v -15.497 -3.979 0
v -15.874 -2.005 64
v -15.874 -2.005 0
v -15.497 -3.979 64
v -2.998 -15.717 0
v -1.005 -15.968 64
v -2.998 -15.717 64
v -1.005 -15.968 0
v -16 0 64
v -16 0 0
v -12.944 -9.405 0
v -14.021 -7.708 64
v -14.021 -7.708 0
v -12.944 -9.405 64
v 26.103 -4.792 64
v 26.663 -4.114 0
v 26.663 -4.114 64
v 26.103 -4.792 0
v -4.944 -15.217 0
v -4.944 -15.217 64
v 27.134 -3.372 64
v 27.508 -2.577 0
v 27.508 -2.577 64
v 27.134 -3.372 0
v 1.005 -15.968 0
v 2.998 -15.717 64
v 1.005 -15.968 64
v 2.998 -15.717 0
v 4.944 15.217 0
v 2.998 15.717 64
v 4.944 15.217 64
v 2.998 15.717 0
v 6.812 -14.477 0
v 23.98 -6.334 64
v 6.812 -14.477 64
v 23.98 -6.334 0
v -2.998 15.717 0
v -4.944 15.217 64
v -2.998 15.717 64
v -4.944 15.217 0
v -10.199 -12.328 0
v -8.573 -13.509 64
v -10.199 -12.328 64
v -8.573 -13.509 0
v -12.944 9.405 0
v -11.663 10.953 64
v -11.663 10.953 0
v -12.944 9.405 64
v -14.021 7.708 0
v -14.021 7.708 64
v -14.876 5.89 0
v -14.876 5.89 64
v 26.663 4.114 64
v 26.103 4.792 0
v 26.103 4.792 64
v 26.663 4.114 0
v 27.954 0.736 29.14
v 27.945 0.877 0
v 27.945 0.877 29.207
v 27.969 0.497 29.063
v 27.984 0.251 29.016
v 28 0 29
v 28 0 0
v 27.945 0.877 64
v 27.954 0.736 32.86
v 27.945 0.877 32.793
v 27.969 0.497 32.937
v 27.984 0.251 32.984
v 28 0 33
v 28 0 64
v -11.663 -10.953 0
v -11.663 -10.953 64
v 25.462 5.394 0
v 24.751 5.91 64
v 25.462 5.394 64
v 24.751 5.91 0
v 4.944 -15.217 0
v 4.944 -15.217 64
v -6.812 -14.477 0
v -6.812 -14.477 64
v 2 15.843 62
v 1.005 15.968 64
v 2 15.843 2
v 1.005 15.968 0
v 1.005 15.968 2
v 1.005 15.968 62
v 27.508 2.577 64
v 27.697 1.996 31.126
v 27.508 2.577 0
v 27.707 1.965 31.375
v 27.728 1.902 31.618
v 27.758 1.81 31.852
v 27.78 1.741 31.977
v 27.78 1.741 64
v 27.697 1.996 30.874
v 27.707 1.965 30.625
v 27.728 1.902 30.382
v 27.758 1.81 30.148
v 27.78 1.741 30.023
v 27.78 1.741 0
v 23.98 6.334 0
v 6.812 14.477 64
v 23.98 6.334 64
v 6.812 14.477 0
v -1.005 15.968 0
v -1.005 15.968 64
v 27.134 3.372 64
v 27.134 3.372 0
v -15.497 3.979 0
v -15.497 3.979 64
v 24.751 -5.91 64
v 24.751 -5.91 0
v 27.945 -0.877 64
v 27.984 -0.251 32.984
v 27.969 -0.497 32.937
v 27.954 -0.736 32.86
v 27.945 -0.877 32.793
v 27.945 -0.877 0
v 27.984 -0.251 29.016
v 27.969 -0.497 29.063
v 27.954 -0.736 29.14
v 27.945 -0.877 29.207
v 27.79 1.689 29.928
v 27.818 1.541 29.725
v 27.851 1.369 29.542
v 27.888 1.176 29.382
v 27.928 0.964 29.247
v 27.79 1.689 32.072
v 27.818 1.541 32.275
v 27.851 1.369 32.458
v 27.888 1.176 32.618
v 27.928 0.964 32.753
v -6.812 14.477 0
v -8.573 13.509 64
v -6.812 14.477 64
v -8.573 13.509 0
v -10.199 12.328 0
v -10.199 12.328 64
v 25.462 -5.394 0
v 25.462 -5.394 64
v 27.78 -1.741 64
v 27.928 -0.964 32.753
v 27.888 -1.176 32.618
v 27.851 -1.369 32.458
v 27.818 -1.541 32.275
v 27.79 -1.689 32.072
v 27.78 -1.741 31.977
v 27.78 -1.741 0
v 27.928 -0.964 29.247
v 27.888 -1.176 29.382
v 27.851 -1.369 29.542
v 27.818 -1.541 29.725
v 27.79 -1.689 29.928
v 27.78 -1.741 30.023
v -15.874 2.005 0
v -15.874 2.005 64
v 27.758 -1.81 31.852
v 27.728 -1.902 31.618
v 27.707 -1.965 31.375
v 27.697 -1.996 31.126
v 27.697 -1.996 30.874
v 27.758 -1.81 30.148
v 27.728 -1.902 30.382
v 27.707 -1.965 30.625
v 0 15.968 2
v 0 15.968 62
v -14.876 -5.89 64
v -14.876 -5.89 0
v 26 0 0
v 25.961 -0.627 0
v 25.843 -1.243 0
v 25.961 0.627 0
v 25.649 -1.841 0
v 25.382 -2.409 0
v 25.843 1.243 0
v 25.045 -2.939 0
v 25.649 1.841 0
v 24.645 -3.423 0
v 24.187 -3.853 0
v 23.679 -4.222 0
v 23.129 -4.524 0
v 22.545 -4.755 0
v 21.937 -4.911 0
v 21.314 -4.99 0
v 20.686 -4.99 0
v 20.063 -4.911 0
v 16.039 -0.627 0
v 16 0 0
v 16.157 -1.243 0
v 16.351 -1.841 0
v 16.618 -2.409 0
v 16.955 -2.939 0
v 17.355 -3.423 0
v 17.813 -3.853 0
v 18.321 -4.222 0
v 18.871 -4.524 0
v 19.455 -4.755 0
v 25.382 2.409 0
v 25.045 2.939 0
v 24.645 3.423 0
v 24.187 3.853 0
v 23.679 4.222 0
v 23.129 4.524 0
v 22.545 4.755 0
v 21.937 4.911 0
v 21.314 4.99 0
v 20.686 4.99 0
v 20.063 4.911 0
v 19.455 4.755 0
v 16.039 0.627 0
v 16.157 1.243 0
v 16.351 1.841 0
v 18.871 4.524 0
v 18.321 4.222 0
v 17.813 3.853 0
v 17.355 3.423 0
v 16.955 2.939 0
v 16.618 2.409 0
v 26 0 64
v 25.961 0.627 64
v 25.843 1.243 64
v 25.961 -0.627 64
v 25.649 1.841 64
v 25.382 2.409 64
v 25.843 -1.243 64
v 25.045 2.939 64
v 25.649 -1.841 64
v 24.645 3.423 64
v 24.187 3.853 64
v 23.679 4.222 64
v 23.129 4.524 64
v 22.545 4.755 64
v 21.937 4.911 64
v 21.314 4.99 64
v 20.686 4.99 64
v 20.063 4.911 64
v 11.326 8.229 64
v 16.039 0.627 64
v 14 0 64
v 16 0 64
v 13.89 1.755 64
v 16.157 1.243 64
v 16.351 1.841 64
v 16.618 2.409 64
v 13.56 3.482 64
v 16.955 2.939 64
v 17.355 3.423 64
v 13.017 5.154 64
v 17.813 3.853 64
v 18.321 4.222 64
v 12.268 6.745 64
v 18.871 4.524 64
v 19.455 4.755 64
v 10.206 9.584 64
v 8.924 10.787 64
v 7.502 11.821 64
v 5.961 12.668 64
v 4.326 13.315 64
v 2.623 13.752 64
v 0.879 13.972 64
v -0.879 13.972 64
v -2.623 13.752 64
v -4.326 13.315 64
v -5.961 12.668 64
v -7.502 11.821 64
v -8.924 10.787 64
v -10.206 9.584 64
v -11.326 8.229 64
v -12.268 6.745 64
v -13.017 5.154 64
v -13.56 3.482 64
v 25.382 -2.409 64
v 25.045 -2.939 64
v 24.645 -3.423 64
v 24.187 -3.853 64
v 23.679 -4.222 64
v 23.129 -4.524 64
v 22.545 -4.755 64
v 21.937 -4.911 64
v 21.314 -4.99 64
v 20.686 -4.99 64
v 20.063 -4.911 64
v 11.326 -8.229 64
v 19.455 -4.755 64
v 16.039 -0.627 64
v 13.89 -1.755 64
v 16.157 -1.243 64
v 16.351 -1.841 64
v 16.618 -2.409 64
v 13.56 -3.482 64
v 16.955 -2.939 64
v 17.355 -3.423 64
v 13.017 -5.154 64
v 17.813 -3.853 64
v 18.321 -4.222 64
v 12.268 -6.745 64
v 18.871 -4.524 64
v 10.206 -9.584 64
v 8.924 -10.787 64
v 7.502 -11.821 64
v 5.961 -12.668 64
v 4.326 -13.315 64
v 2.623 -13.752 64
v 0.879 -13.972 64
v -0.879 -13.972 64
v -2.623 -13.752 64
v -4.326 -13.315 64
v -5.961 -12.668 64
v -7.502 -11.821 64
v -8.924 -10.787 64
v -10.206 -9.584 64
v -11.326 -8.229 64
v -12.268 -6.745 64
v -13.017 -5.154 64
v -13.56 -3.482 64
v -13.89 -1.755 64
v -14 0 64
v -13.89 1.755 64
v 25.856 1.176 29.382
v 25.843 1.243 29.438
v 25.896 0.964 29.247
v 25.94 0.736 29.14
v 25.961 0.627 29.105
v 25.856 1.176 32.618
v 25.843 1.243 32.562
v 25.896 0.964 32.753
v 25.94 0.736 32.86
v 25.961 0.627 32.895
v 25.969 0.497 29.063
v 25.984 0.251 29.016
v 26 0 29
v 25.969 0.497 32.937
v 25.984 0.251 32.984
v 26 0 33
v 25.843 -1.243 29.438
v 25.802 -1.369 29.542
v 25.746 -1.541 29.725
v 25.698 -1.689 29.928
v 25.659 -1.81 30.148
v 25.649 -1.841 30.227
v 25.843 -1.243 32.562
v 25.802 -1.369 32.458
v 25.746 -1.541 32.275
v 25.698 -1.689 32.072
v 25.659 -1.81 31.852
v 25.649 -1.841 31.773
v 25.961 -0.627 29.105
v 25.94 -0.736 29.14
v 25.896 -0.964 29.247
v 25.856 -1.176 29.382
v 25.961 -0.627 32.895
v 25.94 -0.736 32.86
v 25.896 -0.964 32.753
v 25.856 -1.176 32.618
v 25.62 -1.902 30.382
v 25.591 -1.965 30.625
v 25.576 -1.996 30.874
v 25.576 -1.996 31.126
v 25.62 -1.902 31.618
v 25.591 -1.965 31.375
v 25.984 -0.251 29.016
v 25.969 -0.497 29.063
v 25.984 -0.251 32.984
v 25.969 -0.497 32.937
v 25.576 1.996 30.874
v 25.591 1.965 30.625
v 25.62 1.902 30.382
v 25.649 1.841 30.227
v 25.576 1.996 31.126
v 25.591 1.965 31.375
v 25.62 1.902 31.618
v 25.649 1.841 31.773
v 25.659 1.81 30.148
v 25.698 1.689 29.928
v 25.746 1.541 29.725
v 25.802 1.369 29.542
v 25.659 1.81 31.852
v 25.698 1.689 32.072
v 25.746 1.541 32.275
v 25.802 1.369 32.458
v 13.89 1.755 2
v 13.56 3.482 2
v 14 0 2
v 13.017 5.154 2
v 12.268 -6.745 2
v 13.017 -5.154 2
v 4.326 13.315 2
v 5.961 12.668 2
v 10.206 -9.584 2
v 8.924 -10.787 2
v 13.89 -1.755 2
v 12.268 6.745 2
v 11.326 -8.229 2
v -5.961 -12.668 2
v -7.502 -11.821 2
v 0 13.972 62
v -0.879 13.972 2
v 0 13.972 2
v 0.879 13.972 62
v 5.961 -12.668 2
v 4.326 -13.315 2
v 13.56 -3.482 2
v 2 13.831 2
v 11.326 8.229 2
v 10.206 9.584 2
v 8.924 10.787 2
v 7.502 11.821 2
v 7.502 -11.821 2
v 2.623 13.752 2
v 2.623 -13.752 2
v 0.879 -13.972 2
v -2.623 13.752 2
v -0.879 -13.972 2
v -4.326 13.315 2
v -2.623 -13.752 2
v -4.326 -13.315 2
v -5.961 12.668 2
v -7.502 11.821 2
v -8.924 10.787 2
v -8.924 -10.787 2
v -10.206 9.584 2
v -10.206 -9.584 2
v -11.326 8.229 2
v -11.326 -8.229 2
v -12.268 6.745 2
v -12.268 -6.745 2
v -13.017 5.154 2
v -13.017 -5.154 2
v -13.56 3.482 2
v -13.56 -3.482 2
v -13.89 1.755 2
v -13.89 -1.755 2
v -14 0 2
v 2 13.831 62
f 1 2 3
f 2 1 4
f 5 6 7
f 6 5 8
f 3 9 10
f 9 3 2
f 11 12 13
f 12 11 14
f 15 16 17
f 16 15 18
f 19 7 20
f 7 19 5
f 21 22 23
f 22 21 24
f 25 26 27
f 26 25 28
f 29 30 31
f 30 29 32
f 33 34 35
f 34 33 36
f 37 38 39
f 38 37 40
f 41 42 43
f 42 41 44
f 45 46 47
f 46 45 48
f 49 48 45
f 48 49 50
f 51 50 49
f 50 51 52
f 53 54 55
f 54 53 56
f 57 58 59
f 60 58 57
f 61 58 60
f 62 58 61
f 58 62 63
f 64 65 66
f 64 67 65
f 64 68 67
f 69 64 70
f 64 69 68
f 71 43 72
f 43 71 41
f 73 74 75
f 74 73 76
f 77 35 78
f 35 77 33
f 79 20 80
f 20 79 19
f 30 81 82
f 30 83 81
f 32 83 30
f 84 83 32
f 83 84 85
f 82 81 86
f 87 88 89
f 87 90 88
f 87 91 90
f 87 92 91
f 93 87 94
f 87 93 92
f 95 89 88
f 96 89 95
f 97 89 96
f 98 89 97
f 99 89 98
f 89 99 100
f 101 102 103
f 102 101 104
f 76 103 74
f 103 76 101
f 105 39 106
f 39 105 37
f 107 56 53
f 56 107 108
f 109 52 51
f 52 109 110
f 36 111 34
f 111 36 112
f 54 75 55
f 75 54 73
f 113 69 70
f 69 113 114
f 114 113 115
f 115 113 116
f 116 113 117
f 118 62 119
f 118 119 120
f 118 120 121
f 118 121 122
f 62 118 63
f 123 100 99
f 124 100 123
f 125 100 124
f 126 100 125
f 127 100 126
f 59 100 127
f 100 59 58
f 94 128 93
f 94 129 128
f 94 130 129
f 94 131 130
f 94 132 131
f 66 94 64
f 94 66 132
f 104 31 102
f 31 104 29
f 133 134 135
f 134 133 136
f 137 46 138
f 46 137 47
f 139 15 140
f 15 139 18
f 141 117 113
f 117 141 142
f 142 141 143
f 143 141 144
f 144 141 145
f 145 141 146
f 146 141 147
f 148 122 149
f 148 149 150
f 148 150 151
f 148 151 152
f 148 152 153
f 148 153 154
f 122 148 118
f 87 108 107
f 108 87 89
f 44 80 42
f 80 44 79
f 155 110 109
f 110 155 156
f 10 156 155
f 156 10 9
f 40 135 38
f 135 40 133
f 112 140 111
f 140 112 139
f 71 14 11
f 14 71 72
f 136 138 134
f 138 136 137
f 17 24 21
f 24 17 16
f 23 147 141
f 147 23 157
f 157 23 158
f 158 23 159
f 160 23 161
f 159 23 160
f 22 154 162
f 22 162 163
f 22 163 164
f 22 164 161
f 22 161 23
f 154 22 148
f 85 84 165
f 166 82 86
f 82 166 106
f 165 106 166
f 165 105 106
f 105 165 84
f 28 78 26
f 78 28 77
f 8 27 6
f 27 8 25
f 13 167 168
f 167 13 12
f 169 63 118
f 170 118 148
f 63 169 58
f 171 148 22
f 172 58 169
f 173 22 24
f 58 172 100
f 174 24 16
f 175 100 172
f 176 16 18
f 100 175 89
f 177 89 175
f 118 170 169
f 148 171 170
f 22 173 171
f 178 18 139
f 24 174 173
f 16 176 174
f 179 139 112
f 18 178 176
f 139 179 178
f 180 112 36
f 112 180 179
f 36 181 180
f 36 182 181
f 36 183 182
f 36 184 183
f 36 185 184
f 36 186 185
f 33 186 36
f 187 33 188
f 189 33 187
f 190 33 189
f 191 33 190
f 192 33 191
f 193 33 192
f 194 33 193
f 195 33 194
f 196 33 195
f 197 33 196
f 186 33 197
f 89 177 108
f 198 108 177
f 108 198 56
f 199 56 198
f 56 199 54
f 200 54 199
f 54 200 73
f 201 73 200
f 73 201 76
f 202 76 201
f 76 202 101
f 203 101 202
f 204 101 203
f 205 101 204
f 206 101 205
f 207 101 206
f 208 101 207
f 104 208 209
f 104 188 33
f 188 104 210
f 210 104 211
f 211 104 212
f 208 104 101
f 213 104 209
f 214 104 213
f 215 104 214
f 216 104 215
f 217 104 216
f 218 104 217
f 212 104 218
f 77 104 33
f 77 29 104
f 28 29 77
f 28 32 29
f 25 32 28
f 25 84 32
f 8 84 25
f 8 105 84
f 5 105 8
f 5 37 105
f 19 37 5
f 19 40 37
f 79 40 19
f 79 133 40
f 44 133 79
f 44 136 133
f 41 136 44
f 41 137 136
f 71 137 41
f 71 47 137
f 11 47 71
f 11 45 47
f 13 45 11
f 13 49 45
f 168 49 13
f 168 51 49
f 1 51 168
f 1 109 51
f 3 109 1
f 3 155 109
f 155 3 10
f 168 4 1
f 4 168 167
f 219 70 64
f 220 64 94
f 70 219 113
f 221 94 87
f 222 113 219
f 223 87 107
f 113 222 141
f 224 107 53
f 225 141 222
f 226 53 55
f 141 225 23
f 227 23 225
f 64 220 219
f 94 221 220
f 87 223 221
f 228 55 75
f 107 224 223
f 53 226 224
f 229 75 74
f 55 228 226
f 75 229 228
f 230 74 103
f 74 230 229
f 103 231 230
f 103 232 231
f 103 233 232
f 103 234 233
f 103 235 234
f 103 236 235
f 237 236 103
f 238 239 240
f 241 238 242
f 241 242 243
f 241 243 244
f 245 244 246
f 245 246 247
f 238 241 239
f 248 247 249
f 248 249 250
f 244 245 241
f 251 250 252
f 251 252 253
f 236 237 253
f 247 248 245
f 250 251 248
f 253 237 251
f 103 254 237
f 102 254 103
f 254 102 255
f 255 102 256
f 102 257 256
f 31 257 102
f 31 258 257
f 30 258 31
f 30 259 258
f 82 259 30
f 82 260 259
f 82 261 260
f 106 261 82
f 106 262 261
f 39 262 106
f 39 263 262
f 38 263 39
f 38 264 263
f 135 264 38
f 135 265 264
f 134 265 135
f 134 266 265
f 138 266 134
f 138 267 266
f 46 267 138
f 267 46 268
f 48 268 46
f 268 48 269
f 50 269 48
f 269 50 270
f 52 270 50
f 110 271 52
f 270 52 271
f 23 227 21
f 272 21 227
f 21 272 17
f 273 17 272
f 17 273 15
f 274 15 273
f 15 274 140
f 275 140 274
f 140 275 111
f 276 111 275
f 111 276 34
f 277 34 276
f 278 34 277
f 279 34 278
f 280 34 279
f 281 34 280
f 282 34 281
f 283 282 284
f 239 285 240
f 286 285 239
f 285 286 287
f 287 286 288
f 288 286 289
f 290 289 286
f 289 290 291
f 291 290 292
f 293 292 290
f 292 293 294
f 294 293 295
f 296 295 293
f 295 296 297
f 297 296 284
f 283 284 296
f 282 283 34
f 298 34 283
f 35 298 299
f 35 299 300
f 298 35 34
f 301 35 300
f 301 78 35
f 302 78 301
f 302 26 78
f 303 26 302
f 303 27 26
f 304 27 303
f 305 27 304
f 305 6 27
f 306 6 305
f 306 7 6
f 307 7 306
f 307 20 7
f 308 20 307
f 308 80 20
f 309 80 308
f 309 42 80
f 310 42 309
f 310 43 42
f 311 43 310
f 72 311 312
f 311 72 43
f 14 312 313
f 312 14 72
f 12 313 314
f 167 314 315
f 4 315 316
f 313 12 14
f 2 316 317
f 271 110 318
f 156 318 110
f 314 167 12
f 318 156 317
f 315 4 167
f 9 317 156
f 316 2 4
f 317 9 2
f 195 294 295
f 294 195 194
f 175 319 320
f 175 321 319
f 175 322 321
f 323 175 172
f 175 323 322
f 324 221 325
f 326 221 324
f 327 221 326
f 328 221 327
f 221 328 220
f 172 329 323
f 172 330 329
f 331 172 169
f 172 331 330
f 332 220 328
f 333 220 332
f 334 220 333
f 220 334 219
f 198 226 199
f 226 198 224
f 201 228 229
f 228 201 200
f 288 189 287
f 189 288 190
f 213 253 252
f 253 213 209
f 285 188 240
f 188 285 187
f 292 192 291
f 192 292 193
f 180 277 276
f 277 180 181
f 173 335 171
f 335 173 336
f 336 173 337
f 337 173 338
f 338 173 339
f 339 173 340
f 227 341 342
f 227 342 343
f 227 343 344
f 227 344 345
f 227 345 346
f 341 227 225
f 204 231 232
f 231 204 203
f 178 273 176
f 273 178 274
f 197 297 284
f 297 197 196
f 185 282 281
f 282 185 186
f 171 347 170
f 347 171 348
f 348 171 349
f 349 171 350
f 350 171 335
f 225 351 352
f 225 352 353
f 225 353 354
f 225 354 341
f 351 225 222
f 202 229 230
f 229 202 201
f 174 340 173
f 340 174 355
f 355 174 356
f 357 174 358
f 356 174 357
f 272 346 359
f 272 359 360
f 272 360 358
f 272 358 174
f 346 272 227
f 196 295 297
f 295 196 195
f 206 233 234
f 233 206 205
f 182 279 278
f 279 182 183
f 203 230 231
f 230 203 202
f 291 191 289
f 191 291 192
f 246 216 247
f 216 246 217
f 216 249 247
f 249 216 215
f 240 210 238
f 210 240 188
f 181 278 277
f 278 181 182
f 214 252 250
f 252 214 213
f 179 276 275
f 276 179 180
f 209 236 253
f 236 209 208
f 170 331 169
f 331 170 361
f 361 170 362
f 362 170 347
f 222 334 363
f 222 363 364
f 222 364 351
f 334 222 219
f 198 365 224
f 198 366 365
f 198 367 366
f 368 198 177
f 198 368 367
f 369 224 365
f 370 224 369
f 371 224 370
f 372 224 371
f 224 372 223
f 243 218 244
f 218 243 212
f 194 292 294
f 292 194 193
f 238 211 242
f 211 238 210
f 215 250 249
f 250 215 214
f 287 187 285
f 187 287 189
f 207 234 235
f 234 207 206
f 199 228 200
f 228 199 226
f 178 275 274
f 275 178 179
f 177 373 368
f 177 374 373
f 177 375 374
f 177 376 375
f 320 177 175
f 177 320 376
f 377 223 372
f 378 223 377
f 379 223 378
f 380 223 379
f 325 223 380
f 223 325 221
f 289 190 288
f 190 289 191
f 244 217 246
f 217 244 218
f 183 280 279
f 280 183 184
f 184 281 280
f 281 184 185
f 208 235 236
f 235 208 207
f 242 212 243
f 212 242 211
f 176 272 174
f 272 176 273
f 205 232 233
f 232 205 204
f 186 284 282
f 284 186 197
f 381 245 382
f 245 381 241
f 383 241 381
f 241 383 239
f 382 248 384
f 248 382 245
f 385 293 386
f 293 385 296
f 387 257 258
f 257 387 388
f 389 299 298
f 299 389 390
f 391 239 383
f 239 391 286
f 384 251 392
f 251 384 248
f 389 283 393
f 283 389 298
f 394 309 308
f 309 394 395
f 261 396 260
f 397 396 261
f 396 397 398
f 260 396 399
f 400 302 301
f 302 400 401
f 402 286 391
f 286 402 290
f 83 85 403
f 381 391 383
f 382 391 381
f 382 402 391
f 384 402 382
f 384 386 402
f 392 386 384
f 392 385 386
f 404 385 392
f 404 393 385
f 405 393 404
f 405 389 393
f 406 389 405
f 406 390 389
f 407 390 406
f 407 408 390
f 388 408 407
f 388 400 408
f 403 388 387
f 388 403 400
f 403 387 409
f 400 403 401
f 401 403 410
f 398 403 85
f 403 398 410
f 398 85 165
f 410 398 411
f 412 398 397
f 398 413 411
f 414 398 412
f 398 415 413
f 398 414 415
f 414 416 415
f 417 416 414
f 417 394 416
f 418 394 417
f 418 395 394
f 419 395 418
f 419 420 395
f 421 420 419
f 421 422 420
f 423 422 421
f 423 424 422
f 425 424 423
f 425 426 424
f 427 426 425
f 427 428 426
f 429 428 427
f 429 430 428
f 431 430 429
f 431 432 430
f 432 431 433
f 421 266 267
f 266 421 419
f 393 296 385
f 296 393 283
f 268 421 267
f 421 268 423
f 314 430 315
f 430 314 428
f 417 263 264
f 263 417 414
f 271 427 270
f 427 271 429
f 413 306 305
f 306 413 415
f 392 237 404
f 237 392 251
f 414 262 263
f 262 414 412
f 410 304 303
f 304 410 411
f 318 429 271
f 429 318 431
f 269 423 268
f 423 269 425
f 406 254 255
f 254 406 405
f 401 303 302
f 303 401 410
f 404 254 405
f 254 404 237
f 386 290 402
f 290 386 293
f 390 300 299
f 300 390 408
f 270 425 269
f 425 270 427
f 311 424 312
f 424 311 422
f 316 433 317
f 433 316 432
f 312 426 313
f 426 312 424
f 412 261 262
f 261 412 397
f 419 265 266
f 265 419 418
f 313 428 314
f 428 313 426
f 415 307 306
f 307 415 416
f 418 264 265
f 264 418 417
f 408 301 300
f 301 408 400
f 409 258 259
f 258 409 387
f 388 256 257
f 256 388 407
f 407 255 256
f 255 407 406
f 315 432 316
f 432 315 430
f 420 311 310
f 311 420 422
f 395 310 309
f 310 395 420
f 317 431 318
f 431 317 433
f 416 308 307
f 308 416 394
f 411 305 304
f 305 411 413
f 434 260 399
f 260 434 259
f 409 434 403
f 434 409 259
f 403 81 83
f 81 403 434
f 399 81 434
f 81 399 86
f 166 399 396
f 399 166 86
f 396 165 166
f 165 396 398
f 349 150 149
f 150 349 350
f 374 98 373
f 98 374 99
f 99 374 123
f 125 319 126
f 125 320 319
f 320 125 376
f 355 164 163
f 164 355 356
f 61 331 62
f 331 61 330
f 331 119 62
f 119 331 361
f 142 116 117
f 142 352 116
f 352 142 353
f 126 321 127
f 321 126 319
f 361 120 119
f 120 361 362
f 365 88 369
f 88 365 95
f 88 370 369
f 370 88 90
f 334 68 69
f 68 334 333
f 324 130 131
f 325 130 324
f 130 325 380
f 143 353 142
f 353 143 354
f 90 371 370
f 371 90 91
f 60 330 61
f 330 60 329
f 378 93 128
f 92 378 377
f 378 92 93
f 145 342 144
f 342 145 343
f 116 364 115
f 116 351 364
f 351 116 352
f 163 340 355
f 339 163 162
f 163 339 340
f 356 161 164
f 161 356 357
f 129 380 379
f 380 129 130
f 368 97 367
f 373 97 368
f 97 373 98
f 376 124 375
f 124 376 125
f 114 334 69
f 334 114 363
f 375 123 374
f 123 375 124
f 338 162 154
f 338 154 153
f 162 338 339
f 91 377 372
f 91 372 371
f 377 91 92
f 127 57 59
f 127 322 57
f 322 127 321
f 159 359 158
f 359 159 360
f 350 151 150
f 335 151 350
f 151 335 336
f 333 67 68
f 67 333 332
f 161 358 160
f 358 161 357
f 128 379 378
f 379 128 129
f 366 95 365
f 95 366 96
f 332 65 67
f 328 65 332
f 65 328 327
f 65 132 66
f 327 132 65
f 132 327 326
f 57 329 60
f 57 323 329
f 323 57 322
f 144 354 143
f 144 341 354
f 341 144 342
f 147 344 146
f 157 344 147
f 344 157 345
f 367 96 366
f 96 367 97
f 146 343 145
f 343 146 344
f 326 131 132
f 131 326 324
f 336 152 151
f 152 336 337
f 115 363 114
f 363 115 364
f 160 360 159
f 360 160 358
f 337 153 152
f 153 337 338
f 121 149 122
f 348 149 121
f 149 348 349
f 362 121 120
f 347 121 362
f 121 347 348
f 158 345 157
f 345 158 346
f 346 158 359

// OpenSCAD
$fn=50;

d_rope = 10;
d_bag = 28;
h_bag = 60;

wall = 2;

axis_diff = d_rope/2 + d_bag/2 + wall;

difference() {

linear_extrude(height=h_bag+2*wall)
hull() {
    circle(d=d_bag + 2*wall);

    translate([axis_diff, 0, 0])
    circle(d=d_rope + 2*wall);
}

translate([axis_diff, 0, 0])
cylinder(d=d_rope, h=1000, center=true);

translate([0, 0, wall])
cylinder(d=d_bag, h=1000);


translate([0, 0, wall])
cube([wall, 100, h_bag]);


translate([axis_diff, 0, h_bag/2 + wall/2])
rotate([0, 90, 0])
cylinder(d=4, h=100);
}
